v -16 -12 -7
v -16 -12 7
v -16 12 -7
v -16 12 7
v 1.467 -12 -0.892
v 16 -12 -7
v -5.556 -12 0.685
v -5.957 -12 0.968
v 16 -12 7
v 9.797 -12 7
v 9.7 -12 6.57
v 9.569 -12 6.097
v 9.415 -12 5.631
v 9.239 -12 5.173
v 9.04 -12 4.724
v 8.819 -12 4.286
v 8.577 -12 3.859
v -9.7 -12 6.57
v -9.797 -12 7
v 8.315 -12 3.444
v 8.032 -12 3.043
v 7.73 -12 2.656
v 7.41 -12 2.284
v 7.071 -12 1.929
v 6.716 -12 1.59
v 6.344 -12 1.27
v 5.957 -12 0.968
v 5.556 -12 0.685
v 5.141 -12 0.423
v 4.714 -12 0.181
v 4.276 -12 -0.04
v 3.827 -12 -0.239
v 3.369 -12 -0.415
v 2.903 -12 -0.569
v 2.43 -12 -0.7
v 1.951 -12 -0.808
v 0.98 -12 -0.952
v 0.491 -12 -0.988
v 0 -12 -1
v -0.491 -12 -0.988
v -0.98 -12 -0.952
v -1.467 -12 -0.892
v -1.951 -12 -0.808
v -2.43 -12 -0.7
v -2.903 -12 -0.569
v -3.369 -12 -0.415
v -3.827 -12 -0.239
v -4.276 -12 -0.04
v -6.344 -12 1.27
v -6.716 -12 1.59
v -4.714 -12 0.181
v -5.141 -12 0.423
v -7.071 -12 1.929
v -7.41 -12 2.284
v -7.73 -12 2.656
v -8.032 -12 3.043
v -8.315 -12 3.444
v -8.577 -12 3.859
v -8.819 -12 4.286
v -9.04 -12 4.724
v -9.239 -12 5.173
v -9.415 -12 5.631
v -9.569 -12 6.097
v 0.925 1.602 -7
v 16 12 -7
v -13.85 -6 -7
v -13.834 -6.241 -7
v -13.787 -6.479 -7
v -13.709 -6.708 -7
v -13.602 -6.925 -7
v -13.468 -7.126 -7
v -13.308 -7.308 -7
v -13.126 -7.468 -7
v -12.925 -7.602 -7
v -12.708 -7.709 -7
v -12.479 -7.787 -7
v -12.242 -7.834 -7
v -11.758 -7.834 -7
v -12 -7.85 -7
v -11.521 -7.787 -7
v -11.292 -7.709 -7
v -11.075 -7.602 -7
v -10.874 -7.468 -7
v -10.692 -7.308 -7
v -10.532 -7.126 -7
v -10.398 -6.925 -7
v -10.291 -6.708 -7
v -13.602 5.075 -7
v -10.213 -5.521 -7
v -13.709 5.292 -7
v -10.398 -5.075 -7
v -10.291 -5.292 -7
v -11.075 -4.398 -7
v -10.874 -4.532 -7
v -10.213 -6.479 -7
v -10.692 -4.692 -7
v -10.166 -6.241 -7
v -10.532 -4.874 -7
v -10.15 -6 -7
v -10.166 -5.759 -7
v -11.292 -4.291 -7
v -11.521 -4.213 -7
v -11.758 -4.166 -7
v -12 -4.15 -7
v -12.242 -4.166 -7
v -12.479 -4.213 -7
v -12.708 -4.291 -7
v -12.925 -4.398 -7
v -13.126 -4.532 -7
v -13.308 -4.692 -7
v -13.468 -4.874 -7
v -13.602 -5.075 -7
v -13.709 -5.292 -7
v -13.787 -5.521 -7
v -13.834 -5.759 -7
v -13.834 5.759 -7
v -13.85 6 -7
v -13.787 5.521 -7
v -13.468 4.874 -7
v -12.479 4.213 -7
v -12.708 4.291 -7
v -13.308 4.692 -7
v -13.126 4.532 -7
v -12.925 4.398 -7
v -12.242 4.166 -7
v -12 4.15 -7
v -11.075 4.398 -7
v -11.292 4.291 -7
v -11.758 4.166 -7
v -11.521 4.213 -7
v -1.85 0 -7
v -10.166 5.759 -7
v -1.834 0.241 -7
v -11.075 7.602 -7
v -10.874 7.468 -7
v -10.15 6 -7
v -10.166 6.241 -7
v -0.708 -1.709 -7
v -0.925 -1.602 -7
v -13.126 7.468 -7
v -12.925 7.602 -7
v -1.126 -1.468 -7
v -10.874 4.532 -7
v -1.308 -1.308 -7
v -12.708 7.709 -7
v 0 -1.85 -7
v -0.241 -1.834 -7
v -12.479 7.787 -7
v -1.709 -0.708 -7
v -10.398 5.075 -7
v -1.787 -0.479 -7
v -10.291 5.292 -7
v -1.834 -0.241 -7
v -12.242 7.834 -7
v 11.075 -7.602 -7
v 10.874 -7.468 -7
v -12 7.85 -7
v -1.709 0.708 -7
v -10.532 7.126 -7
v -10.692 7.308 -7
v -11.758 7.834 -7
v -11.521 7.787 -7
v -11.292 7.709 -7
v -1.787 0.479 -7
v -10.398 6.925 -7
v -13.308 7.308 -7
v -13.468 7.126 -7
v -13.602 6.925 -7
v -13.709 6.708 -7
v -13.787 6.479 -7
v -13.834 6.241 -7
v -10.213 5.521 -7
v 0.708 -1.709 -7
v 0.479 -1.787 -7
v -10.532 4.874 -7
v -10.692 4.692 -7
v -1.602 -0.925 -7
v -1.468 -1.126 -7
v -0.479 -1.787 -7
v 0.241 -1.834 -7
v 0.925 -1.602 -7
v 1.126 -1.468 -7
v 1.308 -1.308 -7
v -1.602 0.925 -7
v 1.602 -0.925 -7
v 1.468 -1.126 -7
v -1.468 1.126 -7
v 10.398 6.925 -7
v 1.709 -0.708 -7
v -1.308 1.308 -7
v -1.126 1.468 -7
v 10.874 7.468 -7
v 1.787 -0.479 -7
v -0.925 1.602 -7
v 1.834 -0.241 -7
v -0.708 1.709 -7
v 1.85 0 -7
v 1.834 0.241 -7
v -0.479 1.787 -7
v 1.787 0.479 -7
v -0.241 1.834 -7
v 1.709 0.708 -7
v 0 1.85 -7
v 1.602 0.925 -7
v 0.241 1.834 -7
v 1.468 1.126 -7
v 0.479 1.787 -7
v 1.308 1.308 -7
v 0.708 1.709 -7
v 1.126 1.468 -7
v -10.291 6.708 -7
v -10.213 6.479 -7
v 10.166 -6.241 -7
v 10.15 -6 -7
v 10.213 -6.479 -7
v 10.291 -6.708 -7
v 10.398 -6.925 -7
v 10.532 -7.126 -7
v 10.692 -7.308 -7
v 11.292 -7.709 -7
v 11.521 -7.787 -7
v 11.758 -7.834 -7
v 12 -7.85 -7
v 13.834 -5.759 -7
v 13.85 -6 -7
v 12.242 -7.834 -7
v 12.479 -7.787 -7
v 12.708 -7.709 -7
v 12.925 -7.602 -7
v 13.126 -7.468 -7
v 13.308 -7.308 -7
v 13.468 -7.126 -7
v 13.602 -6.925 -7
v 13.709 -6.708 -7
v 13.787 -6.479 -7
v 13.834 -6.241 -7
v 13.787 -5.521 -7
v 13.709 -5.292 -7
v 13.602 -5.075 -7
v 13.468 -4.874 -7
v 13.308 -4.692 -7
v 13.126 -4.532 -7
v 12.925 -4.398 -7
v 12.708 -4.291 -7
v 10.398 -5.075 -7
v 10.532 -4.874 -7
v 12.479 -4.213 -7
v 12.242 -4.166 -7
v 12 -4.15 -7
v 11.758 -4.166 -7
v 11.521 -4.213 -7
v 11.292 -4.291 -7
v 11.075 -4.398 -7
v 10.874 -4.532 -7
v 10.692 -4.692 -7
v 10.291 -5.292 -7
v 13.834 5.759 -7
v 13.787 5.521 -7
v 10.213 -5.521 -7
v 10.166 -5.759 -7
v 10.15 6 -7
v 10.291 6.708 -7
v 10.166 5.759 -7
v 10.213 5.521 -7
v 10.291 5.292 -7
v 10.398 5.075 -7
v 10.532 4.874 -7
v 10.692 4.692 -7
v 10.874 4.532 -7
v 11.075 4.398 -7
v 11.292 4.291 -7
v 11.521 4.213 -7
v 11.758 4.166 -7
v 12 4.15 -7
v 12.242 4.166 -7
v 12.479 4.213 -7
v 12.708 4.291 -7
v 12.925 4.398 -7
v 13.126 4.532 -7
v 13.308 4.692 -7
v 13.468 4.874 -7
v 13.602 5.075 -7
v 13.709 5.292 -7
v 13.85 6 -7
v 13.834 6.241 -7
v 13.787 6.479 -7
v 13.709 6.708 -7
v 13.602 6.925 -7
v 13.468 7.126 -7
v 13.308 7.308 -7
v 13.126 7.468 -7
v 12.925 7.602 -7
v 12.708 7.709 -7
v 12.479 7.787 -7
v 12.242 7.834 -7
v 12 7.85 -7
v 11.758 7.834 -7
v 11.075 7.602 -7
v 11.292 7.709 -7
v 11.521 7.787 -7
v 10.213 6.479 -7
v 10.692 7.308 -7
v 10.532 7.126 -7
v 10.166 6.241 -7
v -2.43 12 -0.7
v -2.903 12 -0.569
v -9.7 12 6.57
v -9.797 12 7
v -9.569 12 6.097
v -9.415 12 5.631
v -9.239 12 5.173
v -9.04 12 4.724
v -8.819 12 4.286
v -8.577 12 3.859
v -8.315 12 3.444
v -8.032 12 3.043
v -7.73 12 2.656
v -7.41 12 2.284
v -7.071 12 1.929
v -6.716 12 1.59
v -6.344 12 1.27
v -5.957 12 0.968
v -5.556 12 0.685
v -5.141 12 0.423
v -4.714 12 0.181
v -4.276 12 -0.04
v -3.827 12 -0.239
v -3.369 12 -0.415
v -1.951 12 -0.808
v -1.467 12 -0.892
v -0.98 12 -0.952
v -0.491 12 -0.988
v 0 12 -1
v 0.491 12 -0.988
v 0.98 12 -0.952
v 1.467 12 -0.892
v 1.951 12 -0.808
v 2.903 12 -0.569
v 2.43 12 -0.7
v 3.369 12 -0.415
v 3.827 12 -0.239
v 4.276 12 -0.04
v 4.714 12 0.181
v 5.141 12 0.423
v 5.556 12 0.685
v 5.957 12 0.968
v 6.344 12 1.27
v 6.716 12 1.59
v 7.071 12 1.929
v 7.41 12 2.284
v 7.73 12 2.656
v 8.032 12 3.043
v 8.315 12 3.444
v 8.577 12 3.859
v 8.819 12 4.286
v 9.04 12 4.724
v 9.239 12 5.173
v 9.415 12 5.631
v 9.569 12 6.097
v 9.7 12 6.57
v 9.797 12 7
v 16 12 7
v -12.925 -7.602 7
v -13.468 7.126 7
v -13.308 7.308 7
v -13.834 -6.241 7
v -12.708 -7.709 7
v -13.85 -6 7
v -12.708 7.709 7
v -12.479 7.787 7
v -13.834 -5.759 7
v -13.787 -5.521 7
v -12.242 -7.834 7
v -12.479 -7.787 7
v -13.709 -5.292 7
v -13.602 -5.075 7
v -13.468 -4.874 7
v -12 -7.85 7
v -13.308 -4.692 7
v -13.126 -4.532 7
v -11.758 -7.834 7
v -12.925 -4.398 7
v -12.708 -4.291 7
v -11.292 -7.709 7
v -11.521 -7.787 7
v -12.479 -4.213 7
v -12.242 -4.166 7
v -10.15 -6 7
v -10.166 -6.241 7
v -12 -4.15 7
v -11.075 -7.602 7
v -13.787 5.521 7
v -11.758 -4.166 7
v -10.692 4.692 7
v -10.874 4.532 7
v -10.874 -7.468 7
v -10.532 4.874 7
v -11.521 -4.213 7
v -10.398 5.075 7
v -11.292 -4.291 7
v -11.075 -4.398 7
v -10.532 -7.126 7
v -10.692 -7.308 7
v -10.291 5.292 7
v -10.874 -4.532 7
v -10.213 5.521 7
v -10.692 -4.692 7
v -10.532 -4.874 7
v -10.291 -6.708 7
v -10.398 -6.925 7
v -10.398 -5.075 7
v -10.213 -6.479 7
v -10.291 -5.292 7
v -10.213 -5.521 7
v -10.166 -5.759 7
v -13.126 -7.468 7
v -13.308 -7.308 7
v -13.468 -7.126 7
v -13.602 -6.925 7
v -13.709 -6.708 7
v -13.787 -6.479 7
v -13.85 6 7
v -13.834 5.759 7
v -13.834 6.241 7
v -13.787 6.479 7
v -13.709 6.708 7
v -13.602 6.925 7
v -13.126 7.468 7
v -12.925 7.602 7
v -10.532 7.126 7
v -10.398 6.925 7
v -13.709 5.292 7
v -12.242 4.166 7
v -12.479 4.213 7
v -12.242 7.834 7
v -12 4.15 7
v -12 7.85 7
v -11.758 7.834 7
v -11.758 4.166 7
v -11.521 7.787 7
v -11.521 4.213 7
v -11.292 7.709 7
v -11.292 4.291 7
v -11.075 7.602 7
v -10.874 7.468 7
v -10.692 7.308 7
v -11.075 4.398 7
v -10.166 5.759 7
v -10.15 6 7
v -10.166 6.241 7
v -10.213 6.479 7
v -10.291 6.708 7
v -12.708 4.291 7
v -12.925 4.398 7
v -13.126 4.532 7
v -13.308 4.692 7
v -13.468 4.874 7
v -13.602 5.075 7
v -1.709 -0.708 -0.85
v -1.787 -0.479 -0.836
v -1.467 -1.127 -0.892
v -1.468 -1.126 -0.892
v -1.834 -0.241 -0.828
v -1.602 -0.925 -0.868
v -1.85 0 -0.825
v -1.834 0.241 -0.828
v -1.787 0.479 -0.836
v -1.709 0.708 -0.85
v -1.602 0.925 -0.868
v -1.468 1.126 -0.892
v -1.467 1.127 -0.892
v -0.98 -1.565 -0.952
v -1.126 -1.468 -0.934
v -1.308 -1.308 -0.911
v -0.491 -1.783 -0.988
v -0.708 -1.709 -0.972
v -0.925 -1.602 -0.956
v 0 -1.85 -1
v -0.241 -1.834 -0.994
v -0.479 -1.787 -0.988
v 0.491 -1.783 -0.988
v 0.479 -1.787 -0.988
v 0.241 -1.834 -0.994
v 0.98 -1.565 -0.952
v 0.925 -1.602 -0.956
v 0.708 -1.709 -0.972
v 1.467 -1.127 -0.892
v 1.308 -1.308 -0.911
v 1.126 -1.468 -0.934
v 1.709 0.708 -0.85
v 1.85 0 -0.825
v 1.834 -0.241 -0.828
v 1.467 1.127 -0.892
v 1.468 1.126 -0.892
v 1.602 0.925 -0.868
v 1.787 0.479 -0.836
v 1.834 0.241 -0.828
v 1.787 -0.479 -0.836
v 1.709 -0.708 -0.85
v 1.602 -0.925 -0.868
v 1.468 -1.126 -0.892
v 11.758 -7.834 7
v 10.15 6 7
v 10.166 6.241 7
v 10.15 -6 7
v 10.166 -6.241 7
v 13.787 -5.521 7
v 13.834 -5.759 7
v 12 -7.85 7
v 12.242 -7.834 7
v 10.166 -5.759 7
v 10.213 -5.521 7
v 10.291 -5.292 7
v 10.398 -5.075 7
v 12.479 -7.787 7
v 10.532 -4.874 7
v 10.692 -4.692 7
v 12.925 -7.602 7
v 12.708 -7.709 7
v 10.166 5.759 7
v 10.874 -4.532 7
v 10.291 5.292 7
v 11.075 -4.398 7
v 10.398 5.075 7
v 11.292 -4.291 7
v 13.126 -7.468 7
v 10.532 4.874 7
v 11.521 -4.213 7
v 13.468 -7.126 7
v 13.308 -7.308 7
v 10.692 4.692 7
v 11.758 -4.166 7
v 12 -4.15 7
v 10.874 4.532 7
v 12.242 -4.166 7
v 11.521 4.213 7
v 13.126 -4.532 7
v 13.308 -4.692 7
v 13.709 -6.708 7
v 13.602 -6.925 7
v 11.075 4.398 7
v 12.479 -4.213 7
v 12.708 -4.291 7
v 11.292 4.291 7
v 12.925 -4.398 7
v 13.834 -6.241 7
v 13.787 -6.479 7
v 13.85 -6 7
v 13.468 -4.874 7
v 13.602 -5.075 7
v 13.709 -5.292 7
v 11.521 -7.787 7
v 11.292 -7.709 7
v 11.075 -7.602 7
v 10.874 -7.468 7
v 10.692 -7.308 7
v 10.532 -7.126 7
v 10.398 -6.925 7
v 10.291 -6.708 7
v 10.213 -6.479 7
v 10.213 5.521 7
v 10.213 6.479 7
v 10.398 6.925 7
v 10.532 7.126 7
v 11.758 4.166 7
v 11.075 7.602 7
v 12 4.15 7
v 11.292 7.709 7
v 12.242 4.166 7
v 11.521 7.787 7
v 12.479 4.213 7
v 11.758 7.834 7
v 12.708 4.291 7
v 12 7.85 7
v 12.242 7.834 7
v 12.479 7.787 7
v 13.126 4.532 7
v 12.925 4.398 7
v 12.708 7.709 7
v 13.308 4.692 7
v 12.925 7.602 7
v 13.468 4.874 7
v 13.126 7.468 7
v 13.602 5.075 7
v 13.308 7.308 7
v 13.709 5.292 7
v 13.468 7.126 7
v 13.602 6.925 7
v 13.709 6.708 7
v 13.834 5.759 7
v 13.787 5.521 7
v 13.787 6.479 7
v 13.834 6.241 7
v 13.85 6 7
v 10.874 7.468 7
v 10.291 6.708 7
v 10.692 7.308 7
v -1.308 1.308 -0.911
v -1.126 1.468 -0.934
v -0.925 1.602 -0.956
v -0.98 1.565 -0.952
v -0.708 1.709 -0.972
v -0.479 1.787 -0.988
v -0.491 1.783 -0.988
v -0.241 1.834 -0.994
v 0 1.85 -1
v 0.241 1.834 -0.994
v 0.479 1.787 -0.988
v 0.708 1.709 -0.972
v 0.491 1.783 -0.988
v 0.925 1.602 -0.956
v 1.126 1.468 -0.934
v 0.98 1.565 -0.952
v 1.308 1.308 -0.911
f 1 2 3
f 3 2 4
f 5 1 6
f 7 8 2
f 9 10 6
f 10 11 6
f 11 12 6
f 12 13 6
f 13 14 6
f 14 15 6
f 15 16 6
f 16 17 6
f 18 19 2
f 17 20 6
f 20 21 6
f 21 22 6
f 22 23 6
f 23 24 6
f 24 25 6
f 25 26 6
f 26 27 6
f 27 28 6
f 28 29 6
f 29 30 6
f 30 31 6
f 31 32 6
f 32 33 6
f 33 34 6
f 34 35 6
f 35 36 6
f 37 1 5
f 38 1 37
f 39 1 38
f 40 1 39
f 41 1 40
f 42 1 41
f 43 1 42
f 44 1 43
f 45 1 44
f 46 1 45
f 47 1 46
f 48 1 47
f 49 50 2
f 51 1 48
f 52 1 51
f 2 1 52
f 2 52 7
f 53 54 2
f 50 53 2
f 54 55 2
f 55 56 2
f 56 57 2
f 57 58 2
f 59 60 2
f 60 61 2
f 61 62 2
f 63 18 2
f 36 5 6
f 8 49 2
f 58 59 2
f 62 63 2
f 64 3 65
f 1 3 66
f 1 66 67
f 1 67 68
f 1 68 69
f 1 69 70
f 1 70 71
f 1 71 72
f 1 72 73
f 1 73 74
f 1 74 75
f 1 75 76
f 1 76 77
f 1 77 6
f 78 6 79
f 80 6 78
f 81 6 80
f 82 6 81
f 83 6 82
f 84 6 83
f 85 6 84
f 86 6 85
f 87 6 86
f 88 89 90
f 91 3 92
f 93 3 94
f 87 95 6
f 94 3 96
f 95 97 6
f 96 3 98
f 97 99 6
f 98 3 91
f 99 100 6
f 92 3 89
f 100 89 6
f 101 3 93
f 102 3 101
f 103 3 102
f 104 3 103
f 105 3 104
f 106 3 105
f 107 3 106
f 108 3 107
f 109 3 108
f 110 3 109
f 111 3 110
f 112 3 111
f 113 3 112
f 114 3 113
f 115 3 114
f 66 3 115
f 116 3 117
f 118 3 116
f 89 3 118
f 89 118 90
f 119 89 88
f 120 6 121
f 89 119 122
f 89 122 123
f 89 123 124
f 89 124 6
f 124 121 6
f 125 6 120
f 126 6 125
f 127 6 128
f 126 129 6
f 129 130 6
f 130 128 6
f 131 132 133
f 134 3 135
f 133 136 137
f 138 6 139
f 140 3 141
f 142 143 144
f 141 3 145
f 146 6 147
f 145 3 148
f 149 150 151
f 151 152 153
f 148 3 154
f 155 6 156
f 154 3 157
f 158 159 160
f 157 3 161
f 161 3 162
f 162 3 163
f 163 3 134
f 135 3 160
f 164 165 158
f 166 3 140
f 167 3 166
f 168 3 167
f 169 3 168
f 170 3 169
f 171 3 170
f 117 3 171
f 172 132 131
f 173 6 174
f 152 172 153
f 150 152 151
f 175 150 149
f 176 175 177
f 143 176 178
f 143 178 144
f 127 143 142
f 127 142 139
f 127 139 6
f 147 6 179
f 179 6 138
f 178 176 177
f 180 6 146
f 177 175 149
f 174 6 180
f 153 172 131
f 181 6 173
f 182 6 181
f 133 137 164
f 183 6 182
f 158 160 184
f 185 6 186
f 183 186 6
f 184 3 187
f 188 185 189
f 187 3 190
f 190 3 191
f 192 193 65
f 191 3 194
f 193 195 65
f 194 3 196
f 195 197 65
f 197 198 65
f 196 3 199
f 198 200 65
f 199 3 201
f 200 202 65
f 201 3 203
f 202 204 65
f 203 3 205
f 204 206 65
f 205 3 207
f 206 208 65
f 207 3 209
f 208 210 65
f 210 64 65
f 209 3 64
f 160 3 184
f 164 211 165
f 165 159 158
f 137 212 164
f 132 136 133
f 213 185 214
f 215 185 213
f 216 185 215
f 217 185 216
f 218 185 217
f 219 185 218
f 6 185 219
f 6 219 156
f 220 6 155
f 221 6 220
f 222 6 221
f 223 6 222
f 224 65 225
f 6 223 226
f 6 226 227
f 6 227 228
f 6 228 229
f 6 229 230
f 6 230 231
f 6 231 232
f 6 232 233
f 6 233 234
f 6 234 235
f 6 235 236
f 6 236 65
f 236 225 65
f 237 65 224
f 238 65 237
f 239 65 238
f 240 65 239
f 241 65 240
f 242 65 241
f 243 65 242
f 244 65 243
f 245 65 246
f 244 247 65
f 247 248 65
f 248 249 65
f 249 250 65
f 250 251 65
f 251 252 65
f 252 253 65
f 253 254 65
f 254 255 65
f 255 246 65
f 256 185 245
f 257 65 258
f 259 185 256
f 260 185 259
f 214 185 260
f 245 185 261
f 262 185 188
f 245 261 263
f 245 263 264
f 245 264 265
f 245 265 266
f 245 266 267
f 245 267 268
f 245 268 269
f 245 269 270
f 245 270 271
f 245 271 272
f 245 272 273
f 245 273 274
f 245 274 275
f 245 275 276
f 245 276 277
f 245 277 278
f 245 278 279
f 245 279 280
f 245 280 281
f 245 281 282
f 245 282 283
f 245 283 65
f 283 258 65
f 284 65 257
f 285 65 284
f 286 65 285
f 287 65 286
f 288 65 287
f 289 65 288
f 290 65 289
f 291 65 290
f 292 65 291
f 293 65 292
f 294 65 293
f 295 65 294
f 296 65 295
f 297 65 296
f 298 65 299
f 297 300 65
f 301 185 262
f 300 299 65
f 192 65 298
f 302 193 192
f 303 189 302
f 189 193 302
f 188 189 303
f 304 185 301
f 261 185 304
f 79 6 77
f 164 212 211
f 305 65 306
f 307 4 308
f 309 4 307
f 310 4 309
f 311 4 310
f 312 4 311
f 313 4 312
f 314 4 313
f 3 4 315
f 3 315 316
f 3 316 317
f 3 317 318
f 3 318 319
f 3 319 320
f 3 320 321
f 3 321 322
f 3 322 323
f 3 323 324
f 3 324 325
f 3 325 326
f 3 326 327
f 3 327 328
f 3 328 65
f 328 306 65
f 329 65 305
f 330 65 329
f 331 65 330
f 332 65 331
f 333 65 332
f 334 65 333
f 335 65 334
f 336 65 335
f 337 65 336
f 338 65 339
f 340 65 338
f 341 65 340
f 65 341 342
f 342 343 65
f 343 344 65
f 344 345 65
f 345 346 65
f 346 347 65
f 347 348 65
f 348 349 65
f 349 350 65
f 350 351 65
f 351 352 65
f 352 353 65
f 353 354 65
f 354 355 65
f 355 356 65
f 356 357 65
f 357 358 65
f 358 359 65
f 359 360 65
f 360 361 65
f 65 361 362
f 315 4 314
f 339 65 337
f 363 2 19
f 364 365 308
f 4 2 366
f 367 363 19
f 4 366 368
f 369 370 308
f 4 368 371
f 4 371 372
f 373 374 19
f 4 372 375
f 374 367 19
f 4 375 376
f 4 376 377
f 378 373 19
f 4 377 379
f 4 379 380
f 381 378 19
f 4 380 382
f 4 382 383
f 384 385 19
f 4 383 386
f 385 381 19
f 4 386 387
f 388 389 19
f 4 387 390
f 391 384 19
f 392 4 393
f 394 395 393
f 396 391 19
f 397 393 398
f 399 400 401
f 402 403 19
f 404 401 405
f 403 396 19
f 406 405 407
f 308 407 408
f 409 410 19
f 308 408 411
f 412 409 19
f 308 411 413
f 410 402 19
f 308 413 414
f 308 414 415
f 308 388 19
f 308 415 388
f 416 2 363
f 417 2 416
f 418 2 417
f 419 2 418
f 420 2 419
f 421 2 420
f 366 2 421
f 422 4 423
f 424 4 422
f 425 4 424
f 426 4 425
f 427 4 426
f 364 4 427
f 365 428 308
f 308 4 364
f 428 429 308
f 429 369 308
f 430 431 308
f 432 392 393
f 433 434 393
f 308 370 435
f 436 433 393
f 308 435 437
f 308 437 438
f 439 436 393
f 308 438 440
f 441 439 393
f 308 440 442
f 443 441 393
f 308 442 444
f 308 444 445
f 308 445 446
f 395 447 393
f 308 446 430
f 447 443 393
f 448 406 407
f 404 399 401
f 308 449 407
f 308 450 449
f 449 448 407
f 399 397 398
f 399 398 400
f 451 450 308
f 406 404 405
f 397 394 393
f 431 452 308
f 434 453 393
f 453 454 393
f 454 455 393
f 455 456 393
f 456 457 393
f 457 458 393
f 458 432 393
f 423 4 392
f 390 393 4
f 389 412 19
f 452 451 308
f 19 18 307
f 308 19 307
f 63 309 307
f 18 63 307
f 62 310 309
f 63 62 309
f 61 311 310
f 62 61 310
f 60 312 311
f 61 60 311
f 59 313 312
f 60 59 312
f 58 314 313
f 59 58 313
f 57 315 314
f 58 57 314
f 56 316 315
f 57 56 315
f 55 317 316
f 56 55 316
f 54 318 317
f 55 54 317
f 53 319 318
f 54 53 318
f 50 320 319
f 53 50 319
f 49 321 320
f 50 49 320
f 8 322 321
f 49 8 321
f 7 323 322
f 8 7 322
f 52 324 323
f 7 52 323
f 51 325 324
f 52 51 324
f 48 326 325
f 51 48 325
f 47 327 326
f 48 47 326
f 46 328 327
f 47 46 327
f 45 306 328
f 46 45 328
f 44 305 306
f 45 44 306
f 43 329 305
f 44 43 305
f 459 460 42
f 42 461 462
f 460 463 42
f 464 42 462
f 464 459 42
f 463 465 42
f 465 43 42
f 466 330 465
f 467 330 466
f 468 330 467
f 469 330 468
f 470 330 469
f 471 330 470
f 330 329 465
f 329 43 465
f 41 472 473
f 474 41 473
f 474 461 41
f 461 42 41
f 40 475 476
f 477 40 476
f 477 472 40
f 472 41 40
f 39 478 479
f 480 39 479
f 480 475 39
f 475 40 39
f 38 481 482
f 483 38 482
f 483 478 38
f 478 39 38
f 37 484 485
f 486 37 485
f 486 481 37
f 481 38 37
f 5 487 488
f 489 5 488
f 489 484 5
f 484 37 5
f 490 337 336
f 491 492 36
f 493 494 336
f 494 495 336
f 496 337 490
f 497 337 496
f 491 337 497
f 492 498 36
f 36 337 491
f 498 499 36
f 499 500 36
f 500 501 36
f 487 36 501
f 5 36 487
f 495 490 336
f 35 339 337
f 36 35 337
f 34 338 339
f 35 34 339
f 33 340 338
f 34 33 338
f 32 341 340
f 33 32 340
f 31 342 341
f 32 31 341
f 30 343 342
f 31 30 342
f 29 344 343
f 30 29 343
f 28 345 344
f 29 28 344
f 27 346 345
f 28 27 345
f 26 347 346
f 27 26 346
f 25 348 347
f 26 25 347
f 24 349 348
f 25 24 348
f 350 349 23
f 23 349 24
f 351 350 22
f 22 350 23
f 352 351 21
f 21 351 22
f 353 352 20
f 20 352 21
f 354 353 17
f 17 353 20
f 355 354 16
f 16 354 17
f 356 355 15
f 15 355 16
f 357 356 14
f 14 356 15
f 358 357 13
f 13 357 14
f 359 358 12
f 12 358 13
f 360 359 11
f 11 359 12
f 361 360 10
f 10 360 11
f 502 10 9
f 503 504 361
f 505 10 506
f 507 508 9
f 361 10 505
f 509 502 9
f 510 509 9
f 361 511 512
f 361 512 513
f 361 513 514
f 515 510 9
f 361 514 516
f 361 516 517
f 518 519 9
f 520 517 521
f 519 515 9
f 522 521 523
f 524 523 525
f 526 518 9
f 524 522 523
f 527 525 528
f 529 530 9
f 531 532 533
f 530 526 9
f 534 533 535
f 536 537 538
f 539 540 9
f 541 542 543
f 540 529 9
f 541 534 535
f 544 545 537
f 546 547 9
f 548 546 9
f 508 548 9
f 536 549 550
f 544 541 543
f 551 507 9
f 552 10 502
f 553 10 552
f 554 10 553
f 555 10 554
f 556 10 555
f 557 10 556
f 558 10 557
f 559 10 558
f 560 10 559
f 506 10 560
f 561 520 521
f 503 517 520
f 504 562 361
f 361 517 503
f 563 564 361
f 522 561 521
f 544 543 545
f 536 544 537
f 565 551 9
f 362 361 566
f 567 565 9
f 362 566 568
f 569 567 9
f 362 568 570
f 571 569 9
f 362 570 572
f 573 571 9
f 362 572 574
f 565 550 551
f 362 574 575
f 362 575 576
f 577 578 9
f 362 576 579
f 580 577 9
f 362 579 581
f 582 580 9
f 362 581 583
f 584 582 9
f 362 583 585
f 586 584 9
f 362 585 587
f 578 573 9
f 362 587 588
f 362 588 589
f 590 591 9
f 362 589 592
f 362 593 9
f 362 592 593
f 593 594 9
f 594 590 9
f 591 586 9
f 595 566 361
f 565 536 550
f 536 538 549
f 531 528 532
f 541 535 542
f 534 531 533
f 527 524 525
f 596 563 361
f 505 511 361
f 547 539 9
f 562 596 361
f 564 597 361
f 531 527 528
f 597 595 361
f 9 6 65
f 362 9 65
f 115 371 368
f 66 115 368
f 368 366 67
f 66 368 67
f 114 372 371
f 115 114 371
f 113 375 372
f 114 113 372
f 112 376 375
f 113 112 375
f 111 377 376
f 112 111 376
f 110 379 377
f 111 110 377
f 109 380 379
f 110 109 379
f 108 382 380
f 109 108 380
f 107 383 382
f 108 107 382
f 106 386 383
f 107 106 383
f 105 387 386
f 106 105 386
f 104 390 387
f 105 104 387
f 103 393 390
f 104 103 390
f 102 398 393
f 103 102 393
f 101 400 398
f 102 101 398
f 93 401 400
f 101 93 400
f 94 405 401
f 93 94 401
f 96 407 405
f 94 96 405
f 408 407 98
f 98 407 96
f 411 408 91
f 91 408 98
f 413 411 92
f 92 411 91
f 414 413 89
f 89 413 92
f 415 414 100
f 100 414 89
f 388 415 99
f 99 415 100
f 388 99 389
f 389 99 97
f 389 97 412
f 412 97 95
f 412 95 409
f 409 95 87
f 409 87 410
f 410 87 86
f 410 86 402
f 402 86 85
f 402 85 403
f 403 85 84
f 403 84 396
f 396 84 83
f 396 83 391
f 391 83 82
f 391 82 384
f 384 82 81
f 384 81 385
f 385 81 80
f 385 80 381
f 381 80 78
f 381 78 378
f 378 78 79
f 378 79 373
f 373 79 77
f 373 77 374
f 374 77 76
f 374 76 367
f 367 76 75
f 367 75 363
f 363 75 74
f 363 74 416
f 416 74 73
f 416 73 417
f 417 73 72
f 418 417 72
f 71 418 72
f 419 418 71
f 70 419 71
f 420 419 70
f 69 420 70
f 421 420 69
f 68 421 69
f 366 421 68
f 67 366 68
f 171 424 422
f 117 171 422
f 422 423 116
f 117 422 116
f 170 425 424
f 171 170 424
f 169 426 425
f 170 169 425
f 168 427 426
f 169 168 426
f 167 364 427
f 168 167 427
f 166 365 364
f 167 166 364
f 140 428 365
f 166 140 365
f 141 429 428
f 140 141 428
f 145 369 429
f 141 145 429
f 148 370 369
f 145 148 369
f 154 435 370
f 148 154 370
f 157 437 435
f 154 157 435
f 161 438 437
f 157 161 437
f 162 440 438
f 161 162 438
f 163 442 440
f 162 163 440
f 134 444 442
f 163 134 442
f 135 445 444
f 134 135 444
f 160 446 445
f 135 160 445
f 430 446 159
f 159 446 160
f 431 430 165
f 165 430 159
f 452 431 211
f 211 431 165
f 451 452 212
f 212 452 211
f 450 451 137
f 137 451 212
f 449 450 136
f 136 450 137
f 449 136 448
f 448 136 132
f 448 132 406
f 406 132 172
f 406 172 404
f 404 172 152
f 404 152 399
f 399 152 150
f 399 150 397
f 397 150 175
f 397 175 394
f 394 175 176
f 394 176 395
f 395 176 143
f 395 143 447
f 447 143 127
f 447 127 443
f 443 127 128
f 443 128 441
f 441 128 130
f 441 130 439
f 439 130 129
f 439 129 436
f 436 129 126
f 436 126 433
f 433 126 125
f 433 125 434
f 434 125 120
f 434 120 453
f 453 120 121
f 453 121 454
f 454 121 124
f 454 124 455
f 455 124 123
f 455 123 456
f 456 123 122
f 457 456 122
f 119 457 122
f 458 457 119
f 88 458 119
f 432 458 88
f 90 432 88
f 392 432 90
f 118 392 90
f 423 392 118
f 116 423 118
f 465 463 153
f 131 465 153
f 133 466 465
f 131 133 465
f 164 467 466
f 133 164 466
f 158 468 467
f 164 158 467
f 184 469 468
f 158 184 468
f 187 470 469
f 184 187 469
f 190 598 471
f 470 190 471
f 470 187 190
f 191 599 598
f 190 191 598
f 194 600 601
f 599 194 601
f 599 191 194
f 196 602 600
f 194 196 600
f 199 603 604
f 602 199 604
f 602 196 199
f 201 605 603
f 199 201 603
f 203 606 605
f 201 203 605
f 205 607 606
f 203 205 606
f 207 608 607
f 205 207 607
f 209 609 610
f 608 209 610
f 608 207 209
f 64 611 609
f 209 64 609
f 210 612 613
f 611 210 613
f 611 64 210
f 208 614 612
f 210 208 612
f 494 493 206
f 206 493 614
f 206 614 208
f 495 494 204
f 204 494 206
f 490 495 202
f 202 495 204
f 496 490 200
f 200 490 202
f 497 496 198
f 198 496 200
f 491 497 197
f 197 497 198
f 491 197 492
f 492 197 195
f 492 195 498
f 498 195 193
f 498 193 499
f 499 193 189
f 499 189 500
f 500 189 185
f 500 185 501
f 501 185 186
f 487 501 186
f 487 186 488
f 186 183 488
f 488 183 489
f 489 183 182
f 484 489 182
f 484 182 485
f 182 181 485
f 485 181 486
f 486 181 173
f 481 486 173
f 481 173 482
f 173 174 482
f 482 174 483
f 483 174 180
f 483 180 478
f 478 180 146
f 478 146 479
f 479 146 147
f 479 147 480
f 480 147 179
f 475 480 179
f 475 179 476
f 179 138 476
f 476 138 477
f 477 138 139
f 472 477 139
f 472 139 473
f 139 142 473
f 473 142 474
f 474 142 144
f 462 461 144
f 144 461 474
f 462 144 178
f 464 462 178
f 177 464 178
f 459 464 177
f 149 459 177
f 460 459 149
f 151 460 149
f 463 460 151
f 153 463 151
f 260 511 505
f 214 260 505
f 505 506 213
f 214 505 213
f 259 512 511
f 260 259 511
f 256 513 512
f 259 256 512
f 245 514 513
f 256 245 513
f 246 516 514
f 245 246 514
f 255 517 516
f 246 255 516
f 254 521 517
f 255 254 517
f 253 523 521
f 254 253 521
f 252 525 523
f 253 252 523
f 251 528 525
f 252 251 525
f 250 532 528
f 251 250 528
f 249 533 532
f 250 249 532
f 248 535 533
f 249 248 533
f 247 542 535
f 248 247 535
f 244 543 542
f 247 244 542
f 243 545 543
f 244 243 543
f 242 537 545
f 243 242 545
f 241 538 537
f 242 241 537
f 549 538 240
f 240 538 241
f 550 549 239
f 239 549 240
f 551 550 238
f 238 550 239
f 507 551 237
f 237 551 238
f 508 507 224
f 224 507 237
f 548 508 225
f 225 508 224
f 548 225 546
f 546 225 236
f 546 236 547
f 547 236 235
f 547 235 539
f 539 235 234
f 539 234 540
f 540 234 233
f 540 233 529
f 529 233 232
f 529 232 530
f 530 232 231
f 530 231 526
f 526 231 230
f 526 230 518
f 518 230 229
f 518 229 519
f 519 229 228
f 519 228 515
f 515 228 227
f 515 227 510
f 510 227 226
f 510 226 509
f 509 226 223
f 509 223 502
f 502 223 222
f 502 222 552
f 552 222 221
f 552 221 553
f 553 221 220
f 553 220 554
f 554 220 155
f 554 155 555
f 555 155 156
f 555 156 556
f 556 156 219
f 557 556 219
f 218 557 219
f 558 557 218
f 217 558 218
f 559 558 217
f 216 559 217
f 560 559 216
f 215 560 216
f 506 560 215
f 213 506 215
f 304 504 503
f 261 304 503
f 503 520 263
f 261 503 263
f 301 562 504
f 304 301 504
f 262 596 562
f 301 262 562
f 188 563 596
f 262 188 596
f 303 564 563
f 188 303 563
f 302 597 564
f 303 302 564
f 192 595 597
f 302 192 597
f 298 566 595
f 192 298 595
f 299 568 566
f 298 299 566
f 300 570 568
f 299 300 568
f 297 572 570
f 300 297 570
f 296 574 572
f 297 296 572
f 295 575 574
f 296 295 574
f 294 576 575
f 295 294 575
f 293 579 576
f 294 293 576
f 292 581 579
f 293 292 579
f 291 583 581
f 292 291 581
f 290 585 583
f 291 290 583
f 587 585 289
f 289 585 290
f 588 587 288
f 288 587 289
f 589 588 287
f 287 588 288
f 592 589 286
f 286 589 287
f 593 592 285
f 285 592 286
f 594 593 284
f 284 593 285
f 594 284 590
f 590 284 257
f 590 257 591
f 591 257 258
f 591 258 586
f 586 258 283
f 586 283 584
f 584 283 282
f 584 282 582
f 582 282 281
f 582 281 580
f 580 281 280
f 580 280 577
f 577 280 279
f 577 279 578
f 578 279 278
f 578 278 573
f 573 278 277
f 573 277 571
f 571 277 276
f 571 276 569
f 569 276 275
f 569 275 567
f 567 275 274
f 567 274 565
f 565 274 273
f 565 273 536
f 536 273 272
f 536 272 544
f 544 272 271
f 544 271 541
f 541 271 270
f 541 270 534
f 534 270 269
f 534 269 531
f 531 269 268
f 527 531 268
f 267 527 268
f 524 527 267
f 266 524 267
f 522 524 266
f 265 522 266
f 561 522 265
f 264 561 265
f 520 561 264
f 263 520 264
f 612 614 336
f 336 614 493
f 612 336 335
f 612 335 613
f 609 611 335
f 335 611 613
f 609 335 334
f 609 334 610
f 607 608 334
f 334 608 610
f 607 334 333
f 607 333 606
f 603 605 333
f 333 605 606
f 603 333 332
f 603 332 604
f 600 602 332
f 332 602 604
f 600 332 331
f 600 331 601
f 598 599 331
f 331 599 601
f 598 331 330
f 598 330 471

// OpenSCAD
module clamp_body()
{
screw_hole_r=1.85; // for 3.5mm screws
  difference()
    {
    // main body around spar hole
    cube([32,24,14], center=true);
    union()
      {
      translate([0,0,9])
        // main notch for spar
        rotate(90,[1,0,0])
        cylinder(h=50, r=10, center=true,$fn=128);

      // centre hole for bolting through spar
      cylinder(h=40,r=screw_hole_r,center=true,$fn=48);
      // Holes along side rails for bolting alongside spar
      translate([12,-6,-20])
      cylinder(h=40,r=screw_hole_r,centre=true,$fn=48);
      translate([-12,-6,-20])
      cylinder(h=40,r=screw_hole_r,centre=true,$fn=48);
      translate([12,6,-20])
      cylinder(h=40,r=screw_hole_r,centre=true,$fn=48);
      translate([-12,6,-20])
      cylinder(h=40,r=screw_hole_r,centre=true,$fn=48);
      
    }
  }
 
}

clamp_body();
